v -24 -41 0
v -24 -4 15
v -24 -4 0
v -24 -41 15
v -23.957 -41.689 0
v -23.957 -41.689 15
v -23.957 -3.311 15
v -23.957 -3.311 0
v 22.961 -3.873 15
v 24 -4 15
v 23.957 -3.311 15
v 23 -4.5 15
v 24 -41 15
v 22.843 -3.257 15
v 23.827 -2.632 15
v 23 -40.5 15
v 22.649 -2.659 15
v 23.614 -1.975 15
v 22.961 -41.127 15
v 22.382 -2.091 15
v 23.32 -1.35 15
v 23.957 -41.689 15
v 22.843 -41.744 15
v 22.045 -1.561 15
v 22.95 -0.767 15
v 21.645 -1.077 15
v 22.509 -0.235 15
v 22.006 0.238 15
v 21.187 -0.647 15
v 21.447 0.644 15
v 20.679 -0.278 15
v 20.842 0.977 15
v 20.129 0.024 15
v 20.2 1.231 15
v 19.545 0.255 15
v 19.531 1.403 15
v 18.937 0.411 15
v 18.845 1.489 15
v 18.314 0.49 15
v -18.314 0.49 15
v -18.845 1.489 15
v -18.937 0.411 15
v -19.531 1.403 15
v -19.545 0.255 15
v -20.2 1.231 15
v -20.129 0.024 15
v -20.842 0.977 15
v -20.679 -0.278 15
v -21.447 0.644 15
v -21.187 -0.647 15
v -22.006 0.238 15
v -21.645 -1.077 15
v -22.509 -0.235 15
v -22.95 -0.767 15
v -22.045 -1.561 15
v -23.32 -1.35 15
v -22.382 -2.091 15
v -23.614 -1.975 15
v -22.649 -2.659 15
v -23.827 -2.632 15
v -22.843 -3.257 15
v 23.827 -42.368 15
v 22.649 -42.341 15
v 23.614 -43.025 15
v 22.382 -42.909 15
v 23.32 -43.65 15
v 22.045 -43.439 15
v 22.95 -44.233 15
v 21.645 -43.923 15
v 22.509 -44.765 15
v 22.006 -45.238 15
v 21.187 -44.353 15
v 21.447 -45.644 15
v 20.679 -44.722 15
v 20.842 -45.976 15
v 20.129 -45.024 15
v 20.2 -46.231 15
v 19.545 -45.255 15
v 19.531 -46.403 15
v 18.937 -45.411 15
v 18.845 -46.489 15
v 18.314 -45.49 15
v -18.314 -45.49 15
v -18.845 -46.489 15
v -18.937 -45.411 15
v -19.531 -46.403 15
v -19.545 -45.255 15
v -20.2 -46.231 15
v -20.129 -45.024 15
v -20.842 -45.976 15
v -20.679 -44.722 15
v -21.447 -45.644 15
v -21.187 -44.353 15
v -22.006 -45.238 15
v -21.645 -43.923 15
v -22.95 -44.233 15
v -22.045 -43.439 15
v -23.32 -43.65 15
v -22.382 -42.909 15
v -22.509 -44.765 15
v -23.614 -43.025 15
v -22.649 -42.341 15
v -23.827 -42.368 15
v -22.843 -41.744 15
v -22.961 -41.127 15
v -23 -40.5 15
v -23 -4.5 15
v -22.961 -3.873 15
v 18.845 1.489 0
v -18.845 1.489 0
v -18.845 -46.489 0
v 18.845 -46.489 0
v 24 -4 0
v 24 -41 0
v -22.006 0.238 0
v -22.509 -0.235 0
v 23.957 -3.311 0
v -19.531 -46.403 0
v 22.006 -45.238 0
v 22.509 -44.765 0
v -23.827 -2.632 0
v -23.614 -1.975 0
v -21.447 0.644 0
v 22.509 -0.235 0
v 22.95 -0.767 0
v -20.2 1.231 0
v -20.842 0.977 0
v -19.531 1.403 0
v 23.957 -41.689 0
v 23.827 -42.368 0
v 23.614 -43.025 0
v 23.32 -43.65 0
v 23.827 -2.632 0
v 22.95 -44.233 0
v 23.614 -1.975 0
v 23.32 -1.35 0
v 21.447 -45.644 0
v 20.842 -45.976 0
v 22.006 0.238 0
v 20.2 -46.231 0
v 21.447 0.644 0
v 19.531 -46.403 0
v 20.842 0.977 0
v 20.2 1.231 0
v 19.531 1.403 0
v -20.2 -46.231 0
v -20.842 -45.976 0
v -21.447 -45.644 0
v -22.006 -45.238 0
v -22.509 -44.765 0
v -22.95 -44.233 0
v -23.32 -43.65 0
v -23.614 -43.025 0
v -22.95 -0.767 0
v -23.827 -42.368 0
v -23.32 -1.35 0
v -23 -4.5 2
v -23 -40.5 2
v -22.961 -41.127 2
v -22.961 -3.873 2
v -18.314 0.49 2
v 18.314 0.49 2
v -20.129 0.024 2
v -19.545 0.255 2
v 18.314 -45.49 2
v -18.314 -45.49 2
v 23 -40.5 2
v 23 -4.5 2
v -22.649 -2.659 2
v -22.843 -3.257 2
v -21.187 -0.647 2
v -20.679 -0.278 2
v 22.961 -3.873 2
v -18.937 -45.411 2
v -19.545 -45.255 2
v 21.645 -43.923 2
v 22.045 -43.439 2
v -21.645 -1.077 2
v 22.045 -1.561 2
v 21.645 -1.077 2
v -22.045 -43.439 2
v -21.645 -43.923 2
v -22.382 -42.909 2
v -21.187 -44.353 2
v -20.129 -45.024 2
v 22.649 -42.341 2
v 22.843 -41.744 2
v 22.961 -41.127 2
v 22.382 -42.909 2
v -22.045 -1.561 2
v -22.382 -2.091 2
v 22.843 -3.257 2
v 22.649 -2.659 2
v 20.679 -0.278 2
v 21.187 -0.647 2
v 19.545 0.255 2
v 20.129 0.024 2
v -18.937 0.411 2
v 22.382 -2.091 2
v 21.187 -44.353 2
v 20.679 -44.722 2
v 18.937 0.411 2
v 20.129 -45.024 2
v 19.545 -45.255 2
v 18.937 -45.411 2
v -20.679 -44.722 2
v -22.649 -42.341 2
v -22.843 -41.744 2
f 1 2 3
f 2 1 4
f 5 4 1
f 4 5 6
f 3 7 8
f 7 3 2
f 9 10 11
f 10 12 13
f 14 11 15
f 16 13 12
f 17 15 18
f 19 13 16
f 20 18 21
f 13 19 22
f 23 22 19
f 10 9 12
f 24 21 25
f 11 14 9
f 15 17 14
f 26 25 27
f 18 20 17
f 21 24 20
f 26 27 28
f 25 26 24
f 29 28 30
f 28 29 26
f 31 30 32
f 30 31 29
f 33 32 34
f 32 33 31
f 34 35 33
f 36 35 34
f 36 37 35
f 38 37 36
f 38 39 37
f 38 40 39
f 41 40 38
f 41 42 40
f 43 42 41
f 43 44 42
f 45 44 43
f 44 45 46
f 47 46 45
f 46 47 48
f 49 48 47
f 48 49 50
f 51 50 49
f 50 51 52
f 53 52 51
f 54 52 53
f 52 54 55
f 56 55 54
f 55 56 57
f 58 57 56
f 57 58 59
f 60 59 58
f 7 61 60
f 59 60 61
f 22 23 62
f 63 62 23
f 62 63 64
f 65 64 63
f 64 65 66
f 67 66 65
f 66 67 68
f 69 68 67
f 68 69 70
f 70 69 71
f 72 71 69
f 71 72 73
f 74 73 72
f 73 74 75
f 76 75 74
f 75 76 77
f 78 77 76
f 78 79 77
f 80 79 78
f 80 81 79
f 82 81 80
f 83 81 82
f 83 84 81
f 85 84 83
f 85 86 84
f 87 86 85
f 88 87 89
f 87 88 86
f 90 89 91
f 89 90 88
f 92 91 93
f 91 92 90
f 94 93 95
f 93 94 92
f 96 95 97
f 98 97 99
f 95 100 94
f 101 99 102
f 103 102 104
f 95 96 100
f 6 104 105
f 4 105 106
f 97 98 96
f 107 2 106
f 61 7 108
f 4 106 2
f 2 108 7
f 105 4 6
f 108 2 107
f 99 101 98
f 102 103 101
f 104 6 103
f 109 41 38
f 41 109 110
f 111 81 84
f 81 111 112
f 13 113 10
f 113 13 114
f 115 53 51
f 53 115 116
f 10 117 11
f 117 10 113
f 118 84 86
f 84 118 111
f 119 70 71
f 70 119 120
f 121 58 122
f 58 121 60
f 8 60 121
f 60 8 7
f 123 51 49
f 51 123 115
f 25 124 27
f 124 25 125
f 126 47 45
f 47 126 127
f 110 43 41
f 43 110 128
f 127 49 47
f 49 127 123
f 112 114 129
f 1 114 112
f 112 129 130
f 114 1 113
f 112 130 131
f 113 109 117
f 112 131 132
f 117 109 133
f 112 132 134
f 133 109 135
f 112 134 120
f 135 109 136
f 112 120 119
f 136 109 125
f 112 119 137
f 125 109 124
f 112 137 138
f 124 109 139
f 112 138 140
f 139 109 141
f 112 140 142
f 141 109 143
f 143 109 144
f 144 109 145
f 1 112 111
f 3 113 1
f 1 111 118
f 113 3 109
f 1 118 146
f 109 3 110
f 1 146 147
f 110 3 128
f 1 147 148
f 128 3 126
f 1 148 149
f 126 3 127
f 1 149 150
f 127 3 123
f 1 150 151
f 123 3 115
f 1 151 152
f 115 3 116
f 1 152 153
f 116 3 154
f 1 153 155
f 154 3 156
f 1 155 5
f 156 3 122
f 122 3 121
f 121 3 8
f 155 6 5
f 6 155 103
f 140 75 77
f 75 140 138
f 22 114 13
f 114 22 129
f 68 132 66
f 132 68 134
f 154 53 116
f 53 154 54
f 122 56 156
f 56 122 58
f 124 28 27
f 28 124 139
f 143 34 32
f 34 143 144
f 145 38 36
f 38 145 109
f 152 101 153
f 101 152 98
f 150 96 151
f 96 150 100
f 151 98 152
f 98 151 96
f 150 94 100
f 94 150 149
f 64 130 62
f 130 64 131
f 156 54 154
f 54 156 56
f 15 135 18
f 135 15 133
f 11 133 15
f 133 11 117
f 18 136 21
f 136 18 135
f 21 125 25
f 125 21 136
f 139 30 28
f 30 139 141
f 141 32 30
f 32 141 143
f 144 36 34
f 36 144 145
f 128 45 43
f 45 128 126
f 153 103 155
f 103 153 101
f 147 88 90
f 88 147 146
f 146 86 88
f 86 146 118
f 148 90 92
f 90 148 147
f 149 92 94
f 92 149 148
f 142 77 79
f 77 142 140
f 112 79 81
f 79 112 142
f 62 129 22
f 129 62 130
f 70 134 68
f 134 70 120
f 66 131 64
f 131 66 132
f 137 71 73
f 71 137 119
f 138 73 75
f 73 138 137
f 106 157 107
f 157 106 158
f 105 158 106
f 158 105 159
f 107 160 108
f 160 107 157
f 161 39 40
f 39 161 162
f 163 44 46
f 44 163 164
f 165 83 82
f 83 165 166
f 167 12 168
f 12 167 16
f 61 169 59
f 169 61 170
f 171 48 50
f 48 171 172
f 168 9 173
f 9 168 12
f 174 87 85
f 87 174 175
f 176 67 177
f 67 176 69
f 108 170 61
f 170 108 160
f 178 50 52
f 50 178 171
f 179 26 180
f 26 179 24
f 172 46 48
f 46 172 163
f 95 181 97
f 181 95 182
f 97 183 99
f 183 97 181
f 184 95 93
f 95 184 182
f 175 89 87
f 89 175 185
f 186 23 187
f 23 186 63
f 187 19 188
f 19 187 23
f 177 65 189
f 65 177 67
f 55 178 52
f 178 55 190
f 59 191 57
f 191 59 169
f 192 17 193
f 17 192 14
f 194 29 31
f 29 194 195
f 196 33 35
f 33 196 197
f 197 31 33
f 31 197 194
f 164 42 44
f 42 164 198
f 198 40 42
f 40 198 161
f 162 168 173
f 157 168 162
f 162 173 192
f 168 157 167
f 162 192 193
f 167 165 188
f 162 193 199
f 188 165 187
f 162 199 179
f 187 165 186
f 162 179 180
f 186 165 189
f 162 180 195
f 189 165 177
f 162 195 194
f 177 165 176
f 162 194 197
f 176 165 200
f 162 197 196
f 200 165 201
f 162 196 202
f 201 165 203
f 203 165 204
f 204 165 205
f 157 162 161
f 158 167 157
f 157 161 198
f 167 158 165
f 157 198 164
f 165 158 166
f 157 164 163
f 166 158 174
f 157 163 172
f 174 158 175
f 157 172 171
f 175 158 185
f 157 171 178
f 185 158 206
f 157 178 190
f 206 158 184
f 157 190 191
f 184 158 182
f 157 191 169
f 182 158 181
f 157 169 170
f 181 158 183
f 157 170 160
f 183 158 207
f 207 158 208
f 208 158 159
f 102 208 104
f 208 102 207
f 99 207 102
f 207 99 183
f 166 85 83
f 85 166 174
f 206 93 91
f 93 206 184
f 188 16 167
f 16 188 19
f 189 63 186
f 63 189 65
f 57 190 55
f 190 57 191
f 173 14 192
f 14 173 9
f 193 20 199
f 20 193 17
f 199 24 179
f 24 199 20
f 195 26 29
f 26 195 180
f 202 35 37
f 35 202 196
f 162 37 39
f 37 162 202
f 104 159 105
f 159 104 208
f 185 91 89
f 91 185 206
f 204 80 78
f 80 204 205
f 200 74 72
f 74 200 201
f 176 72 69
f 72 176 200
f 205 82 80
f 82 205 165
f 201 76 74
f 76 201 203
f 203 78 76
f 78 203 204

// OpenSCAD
$fn = 50;


difference() {
	union() {
		translate(v = [0, -22.5000000000, 0]) {
			hull() {
				translate(v = [-18.5000000000, 18.5000000000, 0]) {
					cylinder(h = 15, r = 5.5000000000);
				}
				translate(v = [18.5000000000, 18.5000000000, 0]) {
					cylinder(h = 15, r = 5.5000000000);
				}
				translate(v = [-18.5000000000, -18.5000000000, 0]) {
					cylinder(h = 15, r = 5.5000000000);
				}
				translate(v = [18.5000000000, -18.5000000000, 0]) {
					cylinder(h = 15, r = 5.5000000000);
				}
			}
		}
	}
	union() {
		translate(v = [0, -22.5000000000, 2]) {
			hull() {
				translate(v = [-18.0000000000, 18.0000000000, 0]) {
					cylinder(h = 30, r = 5);
				}
				translate(v = [18.0000000000, 18.0000000000, 0]) {
					cylinder(h = 30, r = 5);
				}
				translate(v = [-18.0000000000, -18.0000000000, 0]) {
					cylinder(h = 30, r = 5);
				}
				translate(v = [18.0000000000, -18.0000000000, 0]) {
					cylinder(h = 30, r = 5);
				}
			}
		}
	}
}
